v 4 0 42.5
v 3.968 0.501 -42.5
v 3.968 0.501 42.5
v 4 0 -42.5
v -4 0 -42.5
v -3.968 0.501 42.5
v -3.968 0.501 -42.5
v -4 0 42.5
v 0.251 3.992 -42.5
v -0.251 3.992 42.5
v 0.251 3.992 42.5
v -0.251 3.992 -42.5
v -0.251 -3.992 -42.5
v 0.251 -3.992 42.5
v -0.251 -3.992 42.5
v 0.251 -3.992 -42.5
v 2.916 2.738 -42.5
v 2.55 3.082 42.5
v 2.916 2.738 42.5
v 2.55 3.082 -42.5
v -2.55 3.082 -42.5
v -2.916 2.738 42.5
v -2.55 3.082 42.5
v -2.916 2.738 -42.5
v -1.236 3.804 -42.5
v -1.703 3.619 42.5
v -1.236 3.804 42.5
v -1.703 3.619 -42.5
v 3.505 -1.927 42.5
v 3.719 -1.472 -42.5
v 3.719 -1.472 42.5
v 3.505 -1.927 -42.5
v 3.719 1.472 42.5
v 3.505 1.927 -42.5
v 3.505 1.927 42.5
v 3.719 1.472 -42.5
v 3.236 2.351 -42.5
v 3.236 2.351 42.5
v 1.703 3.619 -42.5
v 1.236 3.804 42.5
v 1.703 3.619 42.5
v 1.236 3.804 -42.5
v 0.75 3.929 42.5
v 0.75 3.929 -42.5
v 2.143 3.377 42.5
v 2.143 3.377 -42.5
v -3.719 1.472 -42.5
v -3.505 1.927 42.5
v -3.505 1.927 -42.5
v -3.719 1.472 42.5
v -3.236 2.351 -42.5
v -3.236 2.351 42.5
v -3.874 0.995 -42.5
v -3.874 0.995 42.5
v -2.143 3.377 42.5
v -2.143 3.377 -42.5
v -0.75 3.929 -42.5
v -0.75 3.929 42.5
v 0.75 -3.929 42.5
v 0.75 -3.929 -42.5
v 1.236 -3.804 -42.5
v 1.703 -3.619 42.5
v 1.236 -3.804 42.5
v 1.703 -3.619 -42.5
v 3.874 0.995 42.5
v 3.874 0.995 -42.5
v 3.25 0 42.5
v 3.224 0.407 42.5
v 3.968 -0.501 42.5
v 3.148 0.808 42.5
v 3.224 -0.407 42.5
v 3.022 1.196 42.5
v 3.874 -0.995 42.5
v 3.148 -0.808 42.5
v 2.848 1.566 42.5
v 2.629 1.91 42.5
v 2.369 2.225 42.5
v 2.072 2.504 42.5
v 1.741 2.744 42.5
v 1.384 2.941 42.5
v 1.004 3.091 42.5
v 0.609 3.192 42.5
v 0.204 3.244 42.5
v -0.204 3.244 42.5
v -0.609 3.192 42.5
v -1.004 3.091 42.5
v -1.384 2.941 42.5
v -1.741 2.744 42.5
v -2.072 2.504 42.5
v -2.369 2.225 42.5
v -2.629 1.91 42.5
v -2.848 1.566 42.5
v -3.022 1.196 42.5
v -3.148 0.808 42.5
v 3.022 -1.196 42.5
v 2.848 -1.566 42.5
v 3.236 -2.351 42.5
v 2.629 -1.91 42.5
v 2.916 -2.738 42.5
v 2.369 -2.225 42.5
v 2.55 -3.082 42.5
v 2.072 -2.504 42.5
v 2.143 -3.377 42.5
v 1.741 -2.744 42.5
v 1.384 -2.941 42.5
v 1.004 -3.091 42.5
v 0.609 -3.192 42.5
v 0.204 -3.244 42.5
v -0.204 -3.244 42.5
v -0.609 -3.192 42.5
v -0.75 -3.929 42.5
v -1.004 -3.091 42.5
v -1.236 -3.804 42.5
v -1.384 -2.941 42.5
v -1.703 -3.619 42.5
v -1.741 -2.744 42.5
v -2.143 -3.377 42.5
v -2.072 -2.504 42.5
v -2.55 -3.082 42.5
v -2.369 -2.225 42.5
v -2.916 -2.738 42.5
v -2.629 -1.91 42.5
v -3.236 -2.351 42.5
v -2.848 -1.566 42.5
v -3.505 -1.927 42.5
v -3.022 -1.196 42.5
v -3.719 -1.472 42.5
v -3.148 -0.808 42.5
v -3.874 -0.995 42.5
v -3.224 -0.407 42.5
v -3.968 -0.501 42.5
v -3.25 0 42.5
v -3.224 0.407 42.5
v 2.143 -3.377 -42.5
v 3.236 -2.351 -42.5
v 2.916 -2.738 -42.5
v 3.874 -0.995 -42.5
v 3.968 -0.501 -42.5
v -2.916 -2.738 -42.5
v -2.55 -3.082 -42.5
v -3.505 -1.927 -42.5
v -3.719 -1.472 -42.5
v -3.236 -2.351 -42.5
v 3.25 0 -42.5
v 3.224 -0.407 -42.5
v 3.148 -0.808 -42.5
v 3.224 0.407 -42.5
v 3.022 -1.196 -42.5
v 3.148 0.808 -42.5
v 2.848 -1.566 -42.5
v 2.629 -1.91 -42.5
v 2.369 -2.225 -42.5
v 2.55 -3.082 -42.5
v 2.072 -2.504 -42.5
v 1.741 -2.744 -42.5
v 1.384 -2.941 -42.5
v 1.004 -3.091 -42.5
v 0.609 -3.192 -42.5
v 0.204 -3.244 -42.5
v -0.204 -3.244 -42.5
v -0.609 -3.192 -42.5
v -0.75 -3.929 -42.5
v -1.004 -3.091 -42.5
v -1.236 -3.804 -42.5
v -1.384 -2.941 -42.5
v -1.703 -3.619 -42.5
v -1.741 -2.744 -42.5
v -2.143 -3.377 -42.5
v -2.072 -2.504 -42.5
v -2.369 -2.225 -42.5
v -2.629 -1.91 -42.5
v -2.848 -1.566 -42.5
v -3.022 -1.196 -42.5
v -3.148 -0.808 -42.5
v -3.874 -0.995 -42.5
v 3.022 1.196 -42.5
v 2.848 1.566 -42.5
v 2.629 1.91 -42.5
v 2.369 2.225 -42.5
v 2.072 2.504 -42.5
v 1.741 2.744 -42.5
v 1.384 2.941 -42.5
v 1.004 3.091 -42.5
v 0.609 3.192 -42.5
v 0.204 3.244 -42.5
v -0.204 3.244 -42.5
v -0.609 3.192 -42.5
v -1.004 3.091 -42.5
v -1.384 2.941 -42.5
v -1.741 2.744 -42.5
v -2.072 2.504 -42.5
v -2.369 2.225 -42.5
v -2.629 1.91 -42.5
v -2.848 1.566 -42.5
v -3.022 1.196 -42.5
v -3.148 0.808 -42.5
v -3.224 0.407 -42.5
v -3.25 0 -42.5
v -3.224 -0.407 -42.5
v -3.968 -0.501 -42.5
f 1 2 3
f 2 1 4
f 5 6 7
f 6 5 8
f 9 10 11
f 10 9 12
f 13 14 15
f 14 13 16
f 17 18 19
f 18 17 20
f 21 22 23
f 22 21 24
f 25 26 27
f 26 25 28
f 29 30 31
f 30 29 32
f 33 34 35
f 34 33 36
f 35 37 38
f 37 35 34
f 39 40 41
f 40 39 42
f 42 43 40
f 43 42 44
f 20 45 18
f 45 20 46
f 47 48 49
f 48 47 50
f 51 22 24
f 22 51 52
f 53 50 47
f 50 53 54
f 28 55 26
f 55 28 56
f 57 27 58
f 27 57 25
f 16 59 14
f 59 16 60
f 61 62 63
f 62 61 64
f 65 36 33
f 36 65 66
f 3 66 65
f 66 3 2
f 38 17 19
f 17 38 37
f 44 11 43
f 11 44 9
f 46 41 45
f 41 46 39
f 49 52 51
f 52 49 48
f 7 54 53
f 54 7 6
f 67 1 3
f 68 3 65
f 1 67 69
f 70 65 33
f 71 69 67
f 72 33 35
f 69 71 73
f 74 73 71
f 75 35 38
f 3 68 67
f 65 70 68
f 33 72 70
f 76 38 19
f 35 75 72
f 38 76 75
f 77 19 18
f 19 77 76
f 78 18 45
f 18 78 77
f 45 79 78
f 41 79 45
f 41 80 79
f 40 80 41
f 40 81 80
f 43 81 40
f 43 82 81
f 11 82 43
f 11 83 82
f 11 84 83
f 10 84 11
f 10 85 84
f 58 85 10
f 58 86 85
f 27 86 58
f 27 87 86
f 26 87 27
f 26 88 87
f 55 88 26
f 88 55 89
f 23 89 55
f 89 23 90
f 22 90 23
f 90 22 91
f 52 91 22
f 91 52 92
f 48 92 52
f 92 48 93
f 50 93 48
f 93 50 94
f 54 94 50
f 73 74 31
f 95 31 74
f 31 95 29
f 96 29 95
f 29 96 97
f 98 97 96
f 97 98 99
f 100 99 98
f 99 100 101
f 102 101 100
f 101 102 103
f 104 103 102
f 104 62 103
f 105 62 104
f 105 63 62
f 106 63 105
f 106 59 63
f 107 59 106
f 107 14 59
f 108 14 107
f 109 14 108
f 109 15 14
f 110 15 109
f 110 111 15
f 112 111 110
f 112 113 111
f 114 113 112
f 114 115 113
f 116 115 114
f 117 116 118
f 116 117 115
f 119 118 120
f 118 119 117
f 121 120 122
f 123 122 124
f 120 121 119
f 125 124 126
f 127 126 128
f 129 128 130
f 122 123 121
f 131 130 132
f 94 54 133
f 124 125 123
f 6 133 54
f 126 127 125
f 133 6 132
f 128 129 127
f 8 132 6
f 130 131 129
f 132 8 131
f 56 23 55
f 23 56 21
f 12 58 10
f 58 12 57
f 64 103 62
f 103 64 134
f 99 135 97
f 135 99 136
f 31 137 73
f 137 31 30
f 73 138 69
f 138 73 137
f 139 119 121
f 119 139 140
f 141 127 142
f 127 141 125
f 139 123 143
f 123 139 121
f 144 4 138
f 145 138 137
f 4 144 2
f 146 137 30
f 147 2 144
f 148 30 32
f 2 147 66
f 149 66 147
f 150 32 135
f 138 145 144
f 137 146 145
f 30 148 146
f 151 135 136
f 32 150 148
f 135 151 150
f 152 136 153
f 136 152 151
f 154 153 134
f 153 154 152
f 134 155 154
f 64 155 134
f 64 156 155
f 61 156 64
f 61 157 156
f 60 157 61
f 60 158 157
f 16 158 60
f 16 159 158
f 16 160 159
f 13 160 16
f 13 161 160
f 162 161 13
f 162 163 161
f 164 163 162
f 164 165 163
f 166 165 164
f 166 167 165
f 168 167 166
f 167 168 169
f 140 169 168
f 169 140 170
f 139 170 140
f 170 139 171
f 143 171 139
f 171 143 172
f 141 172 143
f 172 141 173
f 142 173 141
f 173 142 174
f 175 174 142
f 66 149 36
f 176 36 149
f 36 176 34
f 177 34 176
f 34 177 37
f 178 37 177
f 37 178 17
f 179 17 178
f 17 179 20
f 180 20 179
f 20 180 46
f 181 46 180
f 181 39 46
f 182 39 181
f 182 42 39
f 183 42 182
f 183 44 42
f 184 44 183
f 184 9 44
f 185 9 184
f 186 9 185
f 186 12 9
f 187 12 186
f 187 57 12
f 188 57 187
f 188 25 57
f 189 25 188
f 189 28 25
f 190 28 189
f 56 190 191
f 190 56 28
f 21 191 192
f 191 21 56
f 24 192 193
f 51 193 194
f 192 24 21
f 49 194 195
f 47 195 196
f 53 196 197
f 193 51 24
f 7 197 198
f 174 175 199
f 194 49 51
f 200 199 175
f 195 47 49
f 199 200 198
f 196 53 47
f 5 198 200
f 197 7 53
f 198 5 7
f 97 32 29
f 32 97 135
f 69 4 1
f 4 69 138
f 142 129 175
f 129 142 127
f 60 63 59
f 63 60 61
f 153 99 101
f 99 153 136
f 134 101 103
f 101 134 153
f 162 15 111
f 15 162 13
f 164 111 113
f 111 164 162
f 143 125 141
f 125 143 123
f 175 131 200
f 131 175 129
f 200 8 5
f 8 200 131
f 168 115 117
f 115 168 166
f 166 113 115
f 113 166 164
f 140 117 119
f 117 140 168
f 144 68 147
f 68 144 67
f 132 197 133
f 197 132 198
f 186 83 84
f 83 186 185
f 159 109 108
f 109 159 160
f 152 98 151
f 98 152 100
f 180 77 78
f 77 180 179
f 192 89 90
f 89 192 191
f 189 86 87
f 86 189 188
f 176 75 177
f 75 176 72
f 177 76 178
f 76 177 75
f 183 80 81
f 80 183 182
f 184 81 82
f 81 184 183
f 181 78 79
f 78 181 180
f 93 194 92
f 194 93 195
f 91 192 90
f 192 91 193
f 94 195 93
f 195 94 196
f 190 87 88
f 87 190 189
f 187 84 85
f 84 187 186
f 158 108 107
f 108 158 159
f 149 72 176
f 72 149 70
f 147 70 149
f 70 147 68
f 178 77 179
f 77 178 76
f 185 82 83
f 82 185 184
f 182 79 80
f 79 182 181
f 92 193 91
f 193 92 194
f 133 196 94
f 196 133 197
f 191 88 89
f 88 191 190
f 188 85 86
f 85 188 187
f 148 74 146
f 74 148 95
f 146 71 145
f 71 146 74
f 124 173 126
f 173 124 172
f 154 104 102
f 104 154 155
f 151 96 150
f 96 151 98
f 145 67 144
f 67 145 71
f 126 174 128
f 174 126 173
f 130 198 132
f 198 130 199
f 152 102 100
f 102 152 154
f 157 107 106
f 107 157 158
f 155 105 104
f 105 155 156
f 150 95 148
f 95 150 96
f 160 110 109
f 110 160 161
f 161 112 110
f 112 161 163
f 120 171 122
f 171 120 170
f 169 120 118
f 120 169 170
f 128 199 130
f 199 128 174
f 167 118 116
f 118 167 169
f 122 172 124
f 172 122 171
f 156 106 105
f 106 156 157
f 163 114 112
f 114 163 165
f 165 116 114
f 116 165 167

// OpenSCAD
$fn = 50;


difference() {
	union() {
		translate(v = [0, 0, -42.5000000000]) {
			cylinder(h = 85, r = 4.0000000000);
		}
	}
	union() {
		translate(v = [0, 0, -100.0000000000]) {
			cylinder(h = 200, r = 3.2500000000);
		}
	}
}
